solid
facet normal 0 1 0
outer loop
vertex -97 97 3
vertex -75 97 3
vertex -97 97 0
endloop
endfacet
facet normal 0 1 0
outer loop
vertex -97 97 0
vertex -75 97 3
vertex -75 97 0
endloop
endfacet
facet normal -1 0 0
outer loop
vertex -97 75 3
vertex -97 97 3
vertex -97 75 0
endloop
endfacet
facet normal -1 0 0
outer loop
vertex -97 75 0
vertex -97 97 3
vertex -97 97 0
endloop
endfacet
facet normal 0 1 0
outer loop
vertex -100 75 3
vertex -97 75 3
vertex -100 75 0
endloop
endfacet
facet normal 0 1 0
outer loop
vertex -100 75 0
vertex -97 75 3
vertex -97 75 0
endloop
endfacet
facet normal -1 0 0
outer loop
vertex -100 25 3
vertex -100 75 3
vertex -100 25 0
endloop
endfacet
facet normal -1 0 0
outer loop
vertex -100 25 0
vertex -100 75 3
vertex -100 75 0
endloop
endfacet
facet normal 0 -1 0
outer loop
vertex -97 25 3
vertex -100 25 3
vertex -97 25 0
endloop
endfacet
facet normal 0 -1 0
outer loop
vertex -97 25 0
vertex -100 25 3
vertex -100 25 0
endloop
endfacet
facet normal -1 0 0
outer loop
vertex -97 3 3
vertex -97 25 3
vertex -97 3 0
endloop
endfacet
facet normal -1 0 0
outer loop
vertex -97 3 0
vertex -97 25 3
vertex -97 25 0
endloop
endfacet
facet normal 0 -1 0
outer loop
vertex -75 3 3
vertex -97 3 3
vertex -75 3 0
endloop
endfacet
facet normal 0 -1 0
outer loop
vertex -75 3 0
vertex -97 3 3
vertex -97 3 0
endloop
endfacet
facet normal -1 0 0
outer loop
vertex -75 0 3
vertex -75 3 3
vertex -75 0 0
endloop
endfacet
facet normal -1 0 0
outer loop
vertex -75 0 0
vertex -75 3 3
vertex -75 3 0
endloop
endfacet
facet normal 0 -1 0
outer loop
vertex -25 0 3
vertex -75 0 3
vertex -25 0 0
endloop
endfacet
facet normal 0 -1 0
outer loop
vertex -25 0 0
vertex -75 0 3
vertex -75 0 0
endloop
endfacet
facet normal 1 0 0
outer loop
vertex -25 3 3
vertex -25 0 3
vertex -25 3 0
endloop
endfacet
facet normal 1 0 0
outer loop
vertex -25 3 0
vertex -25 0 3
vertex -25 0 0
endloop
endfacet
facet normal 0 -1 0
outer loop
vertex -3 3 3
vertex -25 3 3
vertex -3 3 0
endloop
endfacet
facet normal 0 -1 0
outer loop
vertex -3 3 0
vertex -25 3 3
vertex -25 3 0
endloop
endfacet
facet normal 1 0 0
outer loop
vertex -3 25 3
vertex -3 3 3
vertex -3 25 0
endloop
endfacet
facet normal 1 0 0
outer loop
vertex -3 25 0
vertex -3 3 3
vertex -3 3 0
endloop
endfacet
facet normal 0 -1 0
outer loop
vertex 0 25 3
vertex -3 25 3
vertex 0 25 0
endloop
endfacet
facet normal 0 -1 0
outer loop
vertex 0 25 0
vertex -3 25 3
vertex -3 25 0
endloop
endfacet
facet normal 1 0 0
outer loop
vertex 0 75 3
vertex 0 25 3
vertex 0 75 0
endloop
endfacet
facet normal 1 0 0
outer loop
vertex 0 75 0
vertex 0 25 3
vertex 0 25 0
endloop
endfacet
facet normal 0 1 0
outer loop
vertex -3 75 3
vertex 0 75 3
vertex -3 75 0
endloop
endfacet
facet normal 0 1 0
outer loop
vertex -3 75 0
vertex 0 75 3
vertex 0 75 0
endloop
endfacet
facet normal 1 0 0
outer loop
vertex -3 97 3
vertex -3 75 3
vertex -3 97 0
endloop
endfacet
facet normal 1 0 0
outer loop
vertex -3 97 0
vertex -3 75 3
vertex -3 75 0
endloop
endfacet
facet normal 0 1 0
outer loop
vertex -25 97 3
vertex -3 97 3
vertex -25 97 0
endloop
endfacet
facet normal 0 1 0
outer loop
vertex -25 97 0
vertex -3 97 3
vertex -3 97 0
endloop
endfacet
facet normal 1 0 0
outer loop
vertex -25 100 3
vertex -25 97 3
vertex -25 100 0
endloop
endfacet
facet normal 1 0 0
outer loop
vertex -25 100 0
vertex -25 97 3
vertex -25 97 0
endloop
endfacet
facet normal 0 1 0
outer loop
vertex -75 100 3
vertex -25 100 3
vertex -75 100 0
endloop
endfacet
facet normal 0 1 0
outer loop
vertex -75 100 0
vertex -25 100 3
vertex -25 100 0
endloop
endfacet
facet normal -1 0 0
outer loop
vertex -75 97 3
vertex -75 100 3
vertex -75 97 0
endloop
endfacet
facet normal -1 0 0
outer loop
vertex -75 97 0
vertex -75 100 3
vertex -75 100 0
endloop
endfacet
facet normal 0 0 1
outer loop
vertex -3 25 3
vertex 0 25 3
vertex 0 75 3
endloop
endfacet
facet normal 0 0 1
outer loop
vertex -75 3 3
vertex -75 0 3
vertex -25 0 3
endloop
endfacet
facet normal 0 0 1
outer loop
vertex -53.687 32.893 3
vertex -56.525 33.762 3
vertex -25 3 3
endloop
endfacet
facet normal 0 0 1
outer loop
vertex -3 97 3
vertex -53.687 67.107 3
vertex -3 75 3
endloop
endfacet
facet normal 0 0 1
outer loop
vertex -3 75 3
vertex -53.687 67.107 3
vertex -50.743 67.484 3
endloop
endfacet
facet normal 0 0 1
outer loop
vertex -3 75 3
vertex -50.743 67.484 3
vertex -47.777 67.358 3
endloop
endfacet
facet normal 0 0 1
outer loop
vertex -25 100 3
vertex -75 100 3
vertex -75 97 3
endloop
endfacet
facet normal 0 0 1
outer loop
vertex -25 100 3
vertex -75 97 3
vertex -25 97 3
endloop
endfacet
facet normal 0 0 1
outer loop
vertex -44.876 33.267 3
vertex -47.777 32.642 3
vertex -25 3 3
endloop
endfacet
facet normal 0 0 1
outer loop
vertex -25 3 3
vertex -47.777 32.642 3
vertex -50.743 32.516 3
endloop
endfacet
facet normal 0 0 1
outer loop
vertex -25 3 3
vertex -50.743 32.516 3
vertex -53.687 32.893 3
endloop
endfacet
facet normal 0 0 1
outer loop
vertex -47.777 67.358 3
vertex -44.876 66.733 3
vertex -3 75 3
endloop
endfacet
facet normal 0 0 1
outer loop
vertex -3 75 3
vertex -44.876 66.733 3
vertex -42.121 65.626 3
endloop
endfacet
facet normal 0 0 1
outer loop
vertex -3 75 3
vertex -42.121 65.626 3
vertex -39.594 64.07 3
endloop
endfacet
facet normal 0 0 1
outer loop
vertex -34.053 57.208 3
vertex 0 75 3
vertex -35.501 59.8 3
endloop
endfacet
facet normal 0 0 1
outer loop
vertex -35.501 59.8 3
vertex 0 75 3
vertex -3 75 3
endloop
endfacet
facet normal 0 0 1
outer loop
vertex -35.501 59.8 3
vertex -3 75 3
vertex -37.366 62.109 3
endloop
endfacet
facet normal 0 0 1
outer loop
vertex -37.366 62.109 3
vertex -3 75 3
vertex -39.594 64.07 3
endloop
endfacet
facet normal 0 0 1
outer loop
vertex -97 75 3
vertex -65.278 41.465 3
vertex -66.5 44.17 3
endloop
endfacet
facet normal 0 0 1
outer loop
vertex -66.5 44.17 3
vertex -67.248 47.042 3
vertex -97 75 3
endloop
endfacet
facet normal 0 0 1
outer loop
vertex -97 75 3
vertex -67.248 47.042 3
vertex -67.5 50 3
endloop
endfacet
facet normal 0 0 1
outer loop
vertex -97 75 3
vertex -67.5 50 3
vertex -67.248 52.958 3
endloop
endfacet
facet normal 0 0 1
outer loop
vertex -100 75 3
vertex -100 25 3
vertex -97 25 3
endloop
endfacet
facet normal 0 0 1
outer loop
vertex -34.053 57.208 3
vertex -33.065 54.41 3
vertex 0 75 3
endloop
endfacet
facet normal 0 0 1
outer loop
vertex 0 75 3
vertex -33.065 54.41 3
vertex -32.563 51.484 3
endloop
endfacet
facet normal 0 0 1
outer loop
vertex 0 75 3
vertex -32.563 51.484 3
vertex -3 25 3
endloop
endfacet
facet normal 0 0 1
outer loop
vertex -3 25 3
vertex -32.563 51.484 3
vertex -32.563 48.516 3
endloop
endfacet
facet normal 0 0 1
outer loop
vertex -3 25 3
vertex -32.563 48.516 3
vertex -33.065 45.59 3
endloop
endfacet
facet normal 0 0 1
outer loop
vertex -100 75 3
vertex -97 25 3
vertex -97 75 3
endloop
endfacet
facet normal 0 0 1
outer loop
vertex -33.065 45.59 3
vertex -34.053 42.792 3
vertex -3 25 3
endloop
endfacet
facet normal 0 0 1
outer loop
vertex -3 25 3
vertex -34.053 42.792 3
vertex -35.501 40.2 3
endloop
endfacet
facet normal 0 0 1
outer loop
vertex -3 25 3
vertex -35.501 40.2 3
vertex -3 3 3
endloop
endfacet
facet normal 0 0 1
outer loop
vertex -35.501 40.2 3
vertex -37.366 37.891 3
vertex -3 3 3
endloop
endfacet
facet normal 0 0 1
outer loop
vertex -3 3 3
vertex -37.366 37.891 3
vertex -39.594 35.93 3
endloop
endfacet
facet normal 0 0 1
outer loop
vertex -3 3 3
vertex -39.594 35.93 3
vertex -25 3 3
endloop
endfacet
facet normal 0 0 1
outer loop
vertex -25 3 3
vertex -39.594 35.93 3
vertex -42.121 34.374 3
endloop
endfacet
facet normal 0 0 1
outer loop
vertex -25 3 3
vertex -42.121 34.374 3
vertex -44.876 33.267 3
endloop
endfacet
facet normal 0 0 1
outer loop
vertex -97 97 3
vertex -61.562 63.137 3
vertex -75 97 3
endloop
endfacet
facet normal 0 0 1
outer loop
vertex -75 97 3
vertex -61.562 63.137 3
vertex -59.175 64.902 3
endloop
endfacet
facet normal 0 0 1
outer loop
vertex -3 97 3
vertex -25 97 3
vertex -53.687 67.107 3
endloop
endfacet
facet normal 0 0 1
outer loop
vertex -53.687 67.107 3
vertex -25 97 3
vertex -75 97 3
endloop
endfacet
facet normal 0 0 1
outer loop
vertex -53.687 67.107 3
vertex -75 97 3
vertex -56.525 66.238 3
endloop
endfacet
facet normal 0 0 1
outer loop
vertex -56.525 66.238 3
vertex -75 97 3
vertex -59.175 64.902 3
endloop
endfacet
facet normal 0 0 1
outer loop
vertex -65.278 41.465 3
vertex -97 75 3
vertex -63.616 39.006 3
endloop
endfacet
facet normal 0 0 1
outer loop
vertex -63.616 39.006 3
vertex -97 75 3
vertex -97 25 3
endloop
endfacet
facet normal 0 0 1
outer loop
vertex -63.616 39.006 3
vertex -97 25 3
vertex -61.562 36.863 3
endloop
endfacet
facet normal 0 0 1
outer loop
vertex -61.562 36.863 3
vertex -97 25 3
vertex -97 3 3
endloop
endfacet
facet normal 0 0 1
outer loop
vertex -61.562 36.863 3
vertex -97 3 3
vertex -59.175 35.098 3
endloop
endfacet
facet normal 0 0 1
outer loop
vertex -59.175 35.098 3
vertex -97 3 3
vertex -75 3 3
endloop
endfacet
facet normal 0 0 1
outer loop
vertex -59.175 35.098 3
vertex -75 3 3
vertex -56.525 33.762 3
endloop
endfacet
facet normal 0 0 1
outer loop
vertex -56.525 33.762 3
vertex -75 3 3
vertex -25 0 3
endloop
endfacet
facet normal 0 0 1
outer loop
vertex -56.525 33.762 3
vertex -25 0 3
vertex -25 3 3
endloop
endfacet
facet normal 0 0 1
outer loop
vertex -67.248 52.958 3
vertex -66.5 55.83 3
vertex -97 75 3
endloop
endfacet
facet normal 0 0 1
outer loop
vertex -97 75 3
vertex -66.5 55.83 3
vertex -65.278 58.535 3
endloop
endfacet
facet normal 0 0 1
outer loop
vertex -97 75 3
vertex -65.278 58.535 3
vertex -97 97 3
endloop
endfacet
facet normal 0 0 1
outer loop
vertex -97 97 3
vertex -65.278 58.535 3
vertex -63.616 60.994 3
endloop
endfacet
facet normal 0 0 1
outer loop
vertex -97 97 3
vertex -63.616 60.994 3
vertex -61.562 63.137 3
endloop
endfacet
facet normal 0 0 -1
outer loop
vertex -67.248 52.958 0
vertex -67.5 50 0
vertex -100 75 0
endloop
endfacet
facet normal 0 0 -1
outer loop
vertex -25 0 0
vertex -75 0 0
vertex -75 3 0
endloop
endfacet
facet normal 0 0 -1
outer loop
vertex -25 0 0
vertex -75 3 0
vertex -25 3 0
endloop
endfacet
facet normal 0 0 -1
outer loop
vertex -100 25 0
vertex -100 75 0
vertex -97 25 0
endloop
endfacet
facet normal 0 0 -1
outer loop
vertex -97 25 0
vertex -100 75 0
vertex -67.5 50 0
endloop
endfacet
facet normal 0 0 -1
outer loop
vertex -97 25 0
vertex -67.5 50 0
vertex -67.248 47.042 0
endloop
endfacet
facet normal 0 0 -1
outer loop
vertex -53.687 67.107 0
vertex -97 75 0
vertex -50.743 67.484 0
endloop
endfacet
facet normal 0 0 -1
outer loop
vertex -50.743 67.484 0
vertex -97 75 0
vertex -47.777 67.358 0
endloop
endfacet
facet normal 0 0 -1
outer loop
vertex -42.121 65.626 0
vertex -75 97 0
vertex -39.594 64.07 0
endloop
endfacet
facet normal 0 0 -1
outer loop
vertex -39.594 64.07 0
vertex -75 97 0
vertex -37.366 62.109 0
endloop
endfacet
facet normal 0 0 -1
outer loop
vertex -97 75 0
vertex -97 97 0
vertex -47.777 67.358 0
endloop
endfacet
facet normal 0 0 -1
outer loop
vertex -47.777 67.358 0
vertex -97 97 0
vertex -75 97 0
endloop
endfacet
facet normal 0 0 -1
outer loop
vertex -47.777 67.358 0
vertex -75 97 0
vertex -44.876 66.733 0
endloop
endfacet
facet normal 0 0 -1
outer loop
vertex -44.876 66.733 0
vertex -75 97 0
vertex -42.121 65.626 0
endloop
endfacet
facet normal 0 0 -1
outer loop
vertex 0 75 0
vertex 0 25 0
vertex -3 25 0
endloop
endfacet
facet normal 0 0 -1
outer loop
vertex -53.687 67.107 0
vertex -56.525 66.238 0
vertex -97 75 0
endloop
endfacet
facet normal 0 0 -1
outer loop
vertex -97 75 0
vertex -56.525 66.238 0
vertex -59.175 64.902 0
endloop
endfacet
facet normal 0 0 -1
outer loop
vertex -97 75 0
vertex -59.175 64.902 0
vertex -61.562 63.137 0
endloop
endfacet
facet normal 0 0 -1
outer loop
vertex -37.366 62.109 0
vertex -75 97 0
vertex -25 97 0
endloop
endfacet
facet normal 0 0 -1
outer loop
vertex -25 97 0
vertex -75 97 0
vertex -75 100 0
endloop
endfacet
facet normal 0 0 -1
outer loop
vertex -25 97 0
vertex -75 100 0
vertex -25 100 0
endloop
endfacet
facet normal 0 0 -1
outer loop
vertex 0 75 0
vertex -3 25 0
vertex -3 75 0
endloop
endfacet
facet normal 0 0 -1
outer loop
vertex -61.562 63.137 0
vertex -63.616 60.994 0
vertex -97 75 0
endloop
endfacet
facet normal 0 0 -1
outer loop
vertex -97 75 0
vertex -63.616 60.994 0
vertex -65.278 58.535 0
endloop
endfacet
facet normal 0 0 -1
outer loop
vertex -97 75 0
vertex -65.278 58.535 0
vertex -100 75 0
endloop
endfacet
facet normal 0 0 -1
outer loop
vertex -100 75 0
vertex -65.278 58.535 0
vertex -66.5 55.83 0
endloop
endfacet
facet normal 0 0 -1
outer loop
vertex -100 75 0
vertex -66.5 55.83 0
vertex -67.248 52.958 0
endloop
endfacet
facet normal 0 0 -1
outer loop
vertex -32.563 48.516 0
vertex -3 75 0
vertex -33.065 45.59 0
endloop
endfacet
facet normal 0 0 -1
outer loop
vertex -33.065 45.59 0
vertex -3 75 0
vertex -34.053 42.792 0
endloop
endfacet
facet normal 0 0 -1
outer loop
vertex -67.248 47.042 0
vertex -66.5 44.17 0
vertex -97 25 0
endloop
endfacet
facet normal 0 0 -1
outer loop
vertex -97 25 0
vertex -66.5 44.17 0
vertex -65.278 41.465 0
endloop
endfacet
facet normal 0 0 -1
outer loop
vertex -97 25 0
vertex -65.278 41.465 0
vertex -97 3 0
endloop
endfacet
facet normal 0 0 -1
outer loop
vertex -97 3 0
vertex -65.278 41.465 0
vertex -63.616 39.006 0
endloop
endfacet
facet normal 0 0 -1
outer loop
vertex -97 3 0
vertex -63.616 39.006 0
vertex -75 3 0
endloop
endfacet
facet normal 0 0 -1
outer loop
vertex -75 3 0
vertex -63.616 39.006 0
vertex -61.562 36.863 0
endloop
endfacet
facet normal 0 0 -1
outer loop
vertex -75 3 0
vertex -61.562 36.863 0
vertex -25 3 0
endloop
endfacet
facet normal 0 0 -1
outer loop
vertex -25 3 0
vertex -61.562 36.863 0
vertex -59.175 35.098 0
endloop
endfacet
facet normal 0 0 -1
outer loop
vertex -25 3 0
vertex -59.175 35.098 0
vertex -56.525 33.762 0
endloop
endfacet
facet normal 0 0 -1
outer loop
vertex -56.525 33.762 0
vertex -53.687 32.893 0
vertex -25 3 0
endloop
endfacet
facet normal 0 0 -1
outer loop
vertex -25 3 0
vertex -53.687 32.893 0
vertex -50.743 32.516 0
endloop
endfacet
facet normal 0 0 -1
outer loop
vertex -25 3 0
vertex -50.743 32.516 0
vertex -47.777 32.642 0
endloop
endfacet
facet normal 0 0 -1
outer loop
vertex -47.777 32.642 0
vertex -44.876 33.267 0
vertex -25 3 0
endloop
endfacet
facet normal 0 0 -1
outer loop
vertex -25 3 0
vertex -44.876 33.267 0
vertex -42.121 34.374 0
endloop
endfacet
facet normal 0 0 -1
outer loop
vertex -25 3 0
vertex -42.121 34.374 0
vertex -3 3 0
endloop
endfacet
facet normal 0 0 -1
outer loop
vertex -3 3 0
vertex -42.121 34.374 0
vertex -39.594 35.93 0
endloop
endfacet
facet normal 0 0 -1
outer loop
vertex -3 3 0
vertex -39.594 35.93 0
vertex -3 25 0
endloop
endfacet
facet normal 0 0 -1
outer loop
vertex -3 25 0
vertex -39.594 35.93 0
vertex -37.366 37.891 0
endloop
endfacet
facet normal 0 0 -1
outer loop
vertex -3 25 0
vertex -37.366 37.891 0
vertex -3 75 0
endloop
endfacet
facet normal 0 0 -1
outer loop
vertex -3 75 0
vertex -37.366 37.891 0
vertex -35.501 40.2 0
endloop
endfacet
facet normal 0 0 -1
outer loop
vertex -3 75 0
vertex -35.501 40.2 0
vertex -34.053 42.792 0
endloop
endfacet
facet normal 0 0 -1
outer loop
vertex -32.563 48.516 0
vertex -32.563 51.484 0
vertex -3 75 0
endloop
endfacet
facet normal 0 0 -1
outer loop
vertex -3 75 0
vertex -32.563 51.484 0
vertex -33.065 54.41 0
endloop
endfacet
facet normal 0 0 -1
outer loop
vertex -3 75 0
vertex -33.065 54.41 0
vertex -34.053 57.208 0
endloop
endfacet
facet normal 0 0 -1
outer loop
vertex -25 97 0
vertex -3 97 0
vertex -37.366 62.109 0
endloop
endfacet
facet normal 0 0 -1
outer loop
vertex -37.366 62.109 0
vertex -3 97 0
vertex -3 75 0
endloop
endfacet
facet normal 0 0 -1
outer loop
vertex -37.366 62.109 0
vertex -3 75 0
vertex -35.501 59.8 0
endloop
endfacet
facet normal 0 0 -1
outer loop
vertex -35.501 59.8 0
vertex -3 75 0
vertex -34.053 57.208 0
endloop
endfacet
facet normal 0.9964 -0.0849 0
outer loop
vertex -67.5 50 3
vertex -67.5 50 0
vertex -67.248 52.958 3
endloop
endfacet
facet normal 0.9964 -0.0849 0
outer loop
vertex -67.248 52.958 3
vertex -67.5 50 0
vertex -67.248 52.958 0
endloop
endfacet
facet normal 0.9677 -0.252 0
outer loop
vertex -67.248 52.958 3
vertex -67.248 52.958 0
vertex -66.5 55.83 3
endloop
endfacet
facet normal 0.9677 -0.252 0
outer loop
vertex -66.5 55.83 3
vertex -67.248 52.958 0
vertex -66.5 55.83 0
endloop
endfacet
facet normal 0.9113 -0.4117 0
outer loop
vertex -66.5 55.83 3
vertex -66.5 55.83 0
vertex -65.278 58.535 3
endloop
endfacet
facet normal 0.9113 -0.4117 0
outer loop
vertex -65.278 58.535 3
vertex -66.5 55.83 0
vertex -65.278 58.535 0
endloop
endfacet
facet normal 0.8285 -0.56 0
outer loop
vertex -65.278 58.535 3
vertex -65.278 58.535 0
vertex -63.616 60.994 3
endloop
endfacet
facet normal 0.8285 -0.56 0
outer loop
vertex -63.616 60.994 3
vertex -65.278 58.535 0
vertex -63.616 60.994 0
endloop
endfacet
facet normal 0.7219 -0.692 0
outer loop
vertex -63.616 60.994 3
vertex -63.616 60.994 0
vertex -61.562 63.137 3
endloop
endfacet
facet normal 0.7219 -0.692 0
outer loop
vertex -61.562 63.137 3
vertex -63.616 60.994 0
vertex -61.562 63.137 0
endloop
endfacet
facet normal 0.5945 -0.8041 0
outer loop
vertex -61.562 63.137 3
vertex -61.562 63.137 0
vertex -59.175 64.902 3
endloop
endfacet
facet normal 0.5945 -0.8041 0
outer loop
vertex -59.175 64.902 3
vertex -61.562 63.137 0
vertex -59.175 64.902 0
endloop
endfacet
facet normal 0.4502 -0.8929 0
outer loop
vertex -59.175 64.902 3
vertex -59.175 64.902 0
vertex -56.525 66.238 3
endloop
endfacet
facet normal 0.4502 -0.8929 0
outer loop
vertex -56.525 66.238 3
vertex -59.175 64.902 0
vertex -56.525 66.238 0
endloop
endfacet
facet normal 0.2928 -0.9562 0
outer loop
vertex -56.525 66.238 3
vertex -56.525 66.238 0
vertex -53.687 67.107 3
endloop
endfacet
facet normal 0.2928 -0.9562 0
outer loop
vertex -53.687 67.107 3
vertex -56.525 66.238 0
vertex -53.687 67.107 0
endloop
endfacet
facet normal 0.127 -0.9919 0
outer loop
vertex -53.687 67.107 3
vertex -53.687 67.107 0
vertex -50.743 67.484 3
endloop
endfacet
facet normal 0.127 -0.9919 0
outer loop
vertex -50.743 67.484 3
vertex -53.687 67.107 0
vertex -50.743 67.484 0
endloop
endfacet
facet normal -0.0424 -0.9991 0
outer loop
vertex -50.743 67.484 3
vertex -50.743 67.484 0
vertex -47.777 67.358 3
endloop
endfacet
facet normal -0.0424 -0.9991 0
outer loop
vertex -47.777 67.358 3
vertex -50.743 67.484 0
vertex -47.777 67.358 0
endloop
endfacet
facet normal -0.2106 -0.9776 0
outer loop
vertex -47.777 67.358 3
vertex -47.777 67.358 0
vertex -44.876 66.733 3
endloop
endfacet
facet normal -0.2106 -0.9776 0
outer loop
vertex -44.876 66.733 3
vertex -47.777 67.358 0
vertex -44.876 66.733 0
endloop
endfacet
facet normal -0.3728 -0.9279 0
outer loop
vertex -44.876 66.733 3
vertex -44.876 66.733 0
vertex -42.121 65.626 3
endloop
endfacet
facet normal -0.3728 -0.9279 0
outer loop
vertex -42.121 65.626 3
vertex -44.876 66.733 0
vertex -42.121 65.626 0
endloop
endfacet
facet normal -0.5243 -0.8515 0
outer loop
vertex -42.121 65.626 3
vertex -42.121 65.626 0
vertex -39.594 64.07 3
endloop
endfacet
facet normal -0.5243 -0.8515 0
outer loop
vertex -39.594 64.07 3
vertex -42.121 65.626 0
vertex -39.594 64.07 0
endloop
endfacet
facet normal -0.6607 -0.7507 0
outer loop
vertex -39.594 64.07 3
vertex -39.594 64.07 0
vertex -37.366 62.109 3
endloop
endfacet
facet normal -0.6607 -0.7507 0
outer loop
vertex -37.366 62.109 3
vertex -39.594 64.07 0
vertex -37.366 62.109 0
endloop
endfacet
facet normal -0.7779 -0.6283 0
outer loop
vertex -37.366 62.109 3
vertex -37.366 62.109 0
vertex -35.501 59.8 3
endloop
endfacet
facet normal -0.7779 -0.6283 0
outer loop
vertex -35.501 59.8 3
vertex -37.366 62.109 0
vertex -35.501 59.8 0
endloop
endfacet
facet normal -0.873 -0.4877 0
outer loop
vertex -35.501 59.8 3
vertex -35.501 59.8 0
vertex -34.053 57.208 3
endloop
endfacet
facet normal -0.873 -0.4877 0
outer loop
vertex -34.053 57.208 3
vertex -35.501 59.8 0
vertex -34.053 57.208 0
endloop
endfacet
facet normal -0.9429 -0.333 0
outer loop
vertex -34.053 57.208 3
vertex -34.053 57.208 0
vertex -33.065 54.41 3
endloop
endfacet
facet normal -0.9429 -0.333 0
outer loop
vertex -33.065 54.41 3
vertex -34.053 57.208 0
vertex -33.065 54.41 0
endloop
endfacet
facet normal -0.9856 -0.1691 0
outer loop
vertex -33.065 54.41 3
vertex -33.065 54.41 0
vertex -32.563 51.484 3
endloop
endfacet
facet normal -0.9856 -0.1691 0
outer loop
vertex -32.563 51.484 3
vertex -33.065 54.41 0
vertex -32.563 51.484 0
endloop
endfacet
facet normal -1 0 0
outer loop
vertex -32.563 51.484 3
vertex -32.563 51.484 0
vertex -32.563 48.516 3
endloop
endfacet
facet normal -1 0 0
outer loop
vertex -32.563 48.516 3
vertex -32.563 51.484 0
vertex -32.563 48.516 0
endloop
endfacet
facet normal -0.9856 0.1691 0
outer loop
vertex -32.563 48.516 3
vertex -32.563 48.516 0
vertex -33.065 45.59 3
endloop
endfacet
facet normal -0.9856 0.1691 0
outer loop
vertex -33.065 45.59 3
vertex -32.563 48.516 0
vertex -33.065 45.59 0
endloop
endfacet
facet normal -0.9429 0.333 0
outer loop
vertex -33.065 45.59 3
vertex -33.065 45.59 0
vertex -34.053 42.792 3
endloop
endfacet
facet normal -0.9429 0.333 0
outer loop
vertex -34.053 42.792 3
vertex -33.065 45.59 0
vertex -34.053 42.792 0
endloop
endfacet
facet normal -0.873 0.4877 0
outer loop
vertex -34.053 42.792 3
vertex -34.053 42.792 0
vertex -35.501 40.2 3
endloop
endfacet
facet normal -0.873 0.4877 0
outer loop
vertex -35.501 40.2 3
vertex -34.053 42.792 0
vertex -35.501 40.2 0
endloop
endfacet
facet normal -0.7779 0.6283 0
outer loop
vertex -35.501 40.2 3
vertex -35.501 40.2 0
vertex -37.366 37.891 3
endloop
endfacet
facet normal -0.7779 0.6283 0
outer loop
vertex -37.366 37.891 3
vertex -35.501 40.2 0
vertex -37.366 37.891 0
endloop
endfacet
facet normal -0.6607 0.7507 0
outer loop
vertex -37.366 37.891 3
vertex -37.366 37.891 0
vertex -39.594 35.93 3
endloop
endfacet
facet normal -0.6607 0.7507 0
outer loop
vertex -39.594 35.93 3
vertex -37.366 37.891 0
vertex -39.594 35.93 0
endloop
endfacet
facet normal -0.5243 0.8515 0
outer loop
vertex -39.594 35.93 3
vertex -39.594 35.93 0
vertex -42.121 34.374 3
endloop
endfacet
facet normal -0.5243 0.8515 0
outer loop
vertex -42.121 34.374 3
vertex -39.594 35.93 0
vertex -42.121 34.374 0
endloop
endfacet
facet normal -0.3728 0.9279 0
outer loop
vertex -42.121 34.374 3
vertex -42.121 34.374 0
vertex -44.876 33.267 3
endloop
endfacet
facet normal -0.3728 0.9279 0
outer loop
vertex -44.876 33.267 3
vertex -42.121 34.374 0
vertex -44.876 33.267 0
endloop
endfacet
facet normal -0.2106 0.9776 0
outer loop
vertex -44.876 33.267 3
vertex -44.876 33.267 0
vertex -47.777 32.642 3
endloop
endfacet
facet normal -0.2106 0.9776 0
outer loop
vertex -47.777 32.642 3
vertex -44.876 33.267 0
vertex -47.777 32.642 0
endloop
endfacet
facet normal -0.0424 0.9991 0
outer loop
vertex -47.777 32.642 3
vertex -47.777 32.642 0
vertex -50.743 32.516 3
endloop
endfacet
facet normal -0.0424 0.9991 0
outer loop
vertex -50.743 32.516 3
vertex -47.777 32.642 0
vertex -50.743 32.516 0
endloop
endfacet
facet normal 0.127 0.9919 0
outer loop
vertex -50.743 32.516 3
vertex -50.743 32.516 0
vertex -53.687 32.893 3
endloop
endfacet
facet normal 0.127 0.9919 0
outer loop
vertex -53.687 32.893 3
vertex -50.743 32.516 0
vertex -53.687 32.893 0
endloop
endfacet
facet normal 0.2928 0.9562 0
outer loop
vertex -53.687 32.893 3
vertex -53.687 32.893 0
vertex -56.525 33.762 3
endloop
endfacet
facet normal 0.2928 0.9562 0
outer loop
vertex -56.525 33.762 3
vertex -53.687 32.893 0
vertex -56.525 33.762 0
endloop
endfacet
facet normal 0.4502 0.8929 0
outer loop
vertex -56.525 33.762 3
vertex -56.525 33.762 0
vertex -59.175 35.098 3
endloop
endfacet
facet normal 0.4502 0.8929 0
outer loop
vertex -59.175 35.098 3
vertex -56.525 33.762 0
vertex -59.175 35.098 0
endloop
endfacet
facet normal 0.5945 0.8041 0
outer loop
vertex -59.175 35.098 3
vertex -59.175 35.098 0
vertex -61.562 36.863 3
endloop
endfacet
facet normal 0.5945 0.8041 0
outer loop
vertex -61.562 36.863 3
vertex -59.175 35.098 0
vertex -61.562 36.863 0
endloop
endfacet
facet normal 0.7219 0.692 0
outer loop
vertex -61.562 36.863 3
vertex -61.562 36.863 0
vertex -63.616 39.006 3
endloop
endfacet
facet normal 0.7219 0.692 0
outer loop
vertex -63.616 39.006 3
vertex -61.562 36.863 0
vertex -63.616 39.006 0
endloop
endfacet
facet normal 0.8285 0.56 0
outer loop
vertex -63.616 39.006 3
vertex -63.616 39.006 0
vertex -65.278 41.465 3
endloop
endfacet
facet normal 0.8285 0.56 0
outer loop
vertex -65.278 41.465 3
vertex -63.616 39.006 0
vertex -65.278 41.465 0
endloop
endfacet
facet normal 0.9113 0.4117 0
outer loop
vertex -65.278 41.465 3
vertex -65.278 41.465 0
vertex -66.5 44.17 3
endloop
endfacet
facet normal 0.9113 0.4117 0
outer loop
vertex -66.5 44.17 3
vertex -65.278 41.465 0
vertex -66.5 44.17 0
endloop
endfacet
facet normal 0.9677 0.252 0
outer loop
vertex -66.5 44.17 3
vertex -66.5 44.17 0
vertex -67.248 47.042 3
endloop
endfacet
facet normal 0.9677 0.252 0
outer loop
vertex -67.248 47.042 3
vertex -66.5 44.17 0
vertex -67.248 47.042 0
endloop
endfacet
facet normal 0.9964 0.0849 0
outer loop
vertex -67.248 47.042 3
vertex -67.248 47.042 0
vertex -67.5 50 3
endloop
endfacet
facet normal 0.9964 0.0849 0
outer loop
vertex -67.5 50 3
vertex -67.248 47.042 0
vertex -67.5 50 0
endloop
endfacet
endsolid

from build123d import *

# Parameters (mm, degrees)
EXTRUDE_1_DEPTH     = 3
SKETCH_2_R          = 17.5
CUT_EXTRUDE_1_DEPTH = 142.453172464


with BuildPart() as part:
    # 草图1 → 凸台-拉伸1 (new body)
    with BuildSketch(Plane.XY):
        Polygon((-75, 100), (-75, 97), (-97, 97), (-97, 75), (-100, 75), (-100, 25), (-97, 25), (-97, 3), (-75, 3), (-75, 0), (-25, 0), (-25, 3), (-3, 3), (-3, 25), (0, 25), (0, 75), (-3, 75), (-3, 97), (-25, 97), (-25, 100), align=None)
    extrude(amount=EXTRUDE_1_DEPTH)

    # 草图2 → 切除-拉伸1 (cut, through all)
    with BuildSketch(Plane(origin=(0, 0, 0), x_dir=(-1, 0, 0), z_dir=(0, 0, -1))):
        with Locations((50, 50)):
            Circle(SKETCH_2_R)
    extrude(amount=-CUT_EXTRUDE_1_DEPTH, mode=Mode.SUBTRACT)


solid = part.part
